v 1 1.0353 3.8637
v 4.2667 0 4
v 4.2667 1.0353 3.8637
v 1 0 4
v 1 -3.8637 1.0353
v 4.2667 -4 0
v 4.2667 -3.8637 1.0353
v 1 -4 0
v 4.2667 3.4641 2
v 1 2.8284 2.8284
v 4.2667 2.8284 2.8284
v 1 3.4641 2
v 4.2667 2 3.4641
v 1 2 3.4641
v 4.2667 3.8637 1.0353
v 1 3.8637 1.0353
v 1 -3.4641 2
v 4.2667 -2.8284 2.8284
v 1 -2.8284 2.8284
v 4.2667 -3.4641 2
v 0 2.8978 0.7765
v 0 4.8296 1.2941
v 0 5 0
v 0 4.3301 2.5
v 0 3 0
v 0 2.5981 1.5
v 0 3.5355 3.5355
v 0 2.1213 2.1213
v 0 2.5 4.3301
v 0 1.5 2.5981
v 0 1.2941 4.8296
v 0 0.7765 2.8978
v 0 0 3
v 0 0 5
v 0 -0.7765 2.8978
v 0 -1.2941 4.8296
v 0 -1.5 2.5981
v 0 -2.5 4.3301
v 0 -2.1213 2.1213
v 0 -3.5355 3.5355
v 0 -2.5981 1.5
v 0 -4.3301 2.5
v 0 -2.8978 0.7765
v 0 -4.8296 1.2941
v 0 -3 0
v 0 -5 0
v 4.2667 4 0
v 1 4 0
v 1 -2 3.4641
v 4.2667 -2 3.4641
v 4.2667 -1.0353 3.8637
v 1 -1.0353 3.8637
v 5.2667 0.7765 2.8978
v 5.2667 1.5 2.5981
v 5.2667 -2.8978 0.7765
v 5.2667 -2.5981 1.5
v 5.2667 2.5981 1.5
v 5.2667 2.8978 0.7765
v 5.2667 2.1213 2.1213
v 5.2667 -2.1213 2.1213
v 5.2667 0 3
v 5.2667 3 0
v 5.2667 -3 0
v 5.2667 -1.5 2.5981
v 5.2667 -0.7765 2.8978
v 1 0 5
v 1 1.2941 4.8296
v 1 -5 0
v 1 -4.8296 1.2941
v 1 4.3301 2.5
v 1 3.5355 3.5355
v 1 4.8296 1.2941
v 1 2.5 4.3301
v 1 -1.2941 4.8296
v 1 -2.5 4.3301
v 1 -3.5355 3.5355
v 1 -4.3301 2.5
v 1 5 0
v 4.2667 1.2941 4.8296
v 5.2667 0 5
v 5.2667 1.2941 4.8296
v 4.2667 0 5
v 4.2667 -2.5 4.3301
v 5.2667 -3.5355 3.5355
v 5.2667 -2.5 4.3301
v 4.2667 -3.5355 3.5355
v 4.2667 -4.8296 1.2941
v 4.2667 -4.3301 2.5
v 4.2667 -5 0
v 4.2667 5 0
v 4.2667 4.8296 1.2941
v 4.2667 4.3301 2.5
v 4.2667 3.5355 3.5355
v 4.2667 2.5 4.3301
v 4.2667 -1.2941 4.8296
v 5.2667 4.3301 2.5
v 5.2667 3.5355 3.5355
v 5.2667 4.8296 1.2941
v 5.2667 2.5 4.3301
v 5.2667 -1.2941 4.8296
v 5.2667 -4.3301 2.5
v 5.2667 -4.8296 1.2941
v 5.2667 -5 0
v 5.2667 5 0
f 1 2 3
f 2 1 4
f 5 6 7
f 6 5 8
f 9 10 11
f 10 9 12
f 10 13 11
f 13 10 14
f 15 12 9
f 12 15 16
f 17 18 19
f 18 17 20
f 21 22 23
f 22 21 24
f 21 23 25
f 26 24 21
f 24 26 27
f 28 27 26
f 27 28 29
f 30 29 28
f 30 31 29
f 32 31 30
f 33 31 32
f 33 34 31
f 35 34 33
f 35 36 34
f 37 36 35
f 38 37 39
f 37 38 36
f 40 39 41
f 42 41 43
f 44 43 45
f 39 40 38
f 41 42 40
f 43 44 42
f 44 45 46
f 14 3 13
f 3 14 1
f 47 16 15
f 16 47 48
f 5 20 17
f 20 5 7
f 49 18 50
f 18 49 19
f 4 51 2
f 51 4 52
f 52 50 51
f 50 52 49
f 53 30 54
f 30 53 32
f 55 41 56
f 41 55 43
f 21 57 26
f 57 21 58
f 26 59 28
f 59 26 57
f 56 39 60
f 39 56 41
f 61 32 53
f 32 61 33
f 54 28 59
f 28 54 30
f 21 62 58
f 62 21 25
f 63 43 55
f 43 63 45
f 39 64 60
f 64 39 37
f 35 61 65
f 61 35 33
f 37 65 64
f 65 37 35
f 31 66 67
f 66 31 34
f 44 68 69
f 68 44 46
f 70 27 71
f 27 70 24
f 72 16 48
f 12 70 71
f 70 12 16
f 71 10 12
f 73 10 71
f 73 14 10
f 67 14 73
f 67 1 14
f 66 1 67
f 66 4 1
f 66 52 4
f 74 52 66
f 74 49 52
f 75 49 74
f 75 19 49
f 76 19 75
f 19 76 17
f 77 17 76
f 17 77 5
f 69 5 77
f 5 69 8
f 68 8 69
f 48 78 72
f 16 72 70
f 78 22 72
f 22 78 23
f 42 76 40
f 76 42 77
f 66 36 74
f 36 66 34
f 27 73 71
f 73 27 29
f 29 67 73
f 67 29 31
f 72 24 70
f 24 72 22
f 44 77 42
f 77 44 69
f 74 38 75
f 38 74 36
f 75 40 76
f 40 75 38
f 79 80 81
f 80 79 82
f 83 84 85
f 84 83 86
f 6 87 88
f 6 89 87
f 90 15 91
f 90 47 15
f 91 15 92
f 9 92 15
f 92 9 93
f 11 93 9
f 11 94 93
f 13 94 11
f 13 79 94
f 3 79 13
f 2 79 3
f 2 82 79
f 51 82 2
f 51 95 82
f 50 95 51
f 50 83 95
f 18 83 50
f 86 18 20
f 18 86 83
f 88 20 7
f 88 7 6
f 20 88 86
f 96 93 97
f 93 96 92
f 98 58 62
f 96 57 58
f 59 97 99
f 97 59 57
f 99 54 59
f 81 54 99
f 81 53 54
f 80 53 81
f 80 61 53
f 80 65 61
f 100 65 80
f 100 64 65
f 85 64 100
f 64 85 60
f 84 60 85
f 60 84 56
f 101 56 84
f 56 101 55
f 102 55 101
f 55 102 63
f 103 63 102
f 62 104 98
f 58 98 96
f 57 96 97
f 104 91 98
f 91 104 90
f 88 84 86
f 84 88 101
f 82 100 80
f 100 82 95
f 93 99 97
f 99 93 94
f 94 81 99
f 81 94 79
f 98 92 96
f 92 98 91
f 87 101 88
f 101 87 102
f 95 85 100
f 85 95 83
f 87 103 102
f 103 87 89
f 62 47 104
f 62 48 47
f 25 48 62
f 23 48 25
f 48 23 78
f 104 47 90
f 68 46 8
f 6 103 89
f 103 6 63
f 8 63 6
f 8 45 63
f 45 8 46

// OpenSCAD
// file: ../build_environments.scad
// build_environments.scad: modules to build level sections
//

module pool(diameter=10.0, wall_height=2.0, step_width=3.0, connections=[])
{
    difference() {
        union() {
        difference() {
            cylinder(h=0.5,r1=diameter+step_width,r2=diameter+step_width,$fn=48);
            translate([0,0,-0.1])
                cylinder(h=0.7,r1=diameter,r2=diameter,$fn=48);
        }
        difference() {
            cylinder(h=wall_height,r1=diameter+step_width+1.0,r2=diameter+step_width+1.0,$fn=48);
            translate([0,0,-0.1])
                cylinder(h=wall_height+0.2,r1=diameter+step_width,r2=diameter+step_width,$fn=48);
        }
        }
    
        for (c = connections)
        {
            rotate([0,90,0]) {
                angle = atan2(c[1],c[0]);
                rotate([-angle,0,0]) {
                    cylinder(h=diameter+5.0,r1=c[2],r2=c[2],$fn=48);
                }
            }
        }
    }
}

module straight(length=10.0, width=2.0, dy1=0.0, dy2=0.0, dz=0.0)
{
    dims = [0, 0, 0, 0, 0, (dz/length)];
    matrix = [
        [ 1, dims[0], dims[1], 0 ],
        [ dims[2], 1, dims[4], 0 ],
        [ dims[5], dims[3], 1, 0 ],
        [ 0, 0, 0, 1 ]
    ];
    multmatrix(matrix)
    difference() {
        translate([dy1,0,0])
        union() {
            rotate([0,90,0]) {
                difference() {
                    cylinder(h=(length-dy1-dy2),r1=width+1.0,r2=width+1.0,$fn=24);
                    translate([0,0,-0.1])
                        cylinder(h=(length-dy1-dy2+0.2),r1=width,r2=width,$fn=24);
                }
                difference() {
                    cylinder(h=1.0,r1=width+2.0,r2=width+2.0,$fn=24);
                    translate([0,0,-0.1])
                        cylinder(h=1.2,r1=width,r2=width,$fn=24);
                }
                translate([0,0,(length-dy1-dy2)-1.0]) {
                    difference() {
                        cylinder(h=1.0,r1=width+2.0,r2=width+2.0,$fn=24);
                        translate([0,0,-0.1])
                            cylinder(h=1.2,r1=width,r2=width,$fn=24);
                    }
                }
            }
        }
        translate([0,0,-(2*width+4.0)/2])
            cube([3*length,3*length,2*width+4.0],center=true);
    }
}

module curve(p0=[0,0], center=[0,0], dir=1, angle=0.0, width=2.0)
{
    radius = sqrt((p0[0]-center[0])*(p0[0]-center[0]) + (p0[1]-center[1])*(p0[1]-center[1]));
    if (dir == 0) {
        difference() {
            rotate([0,0,-90])
            difference() {
                rotate_extrude(angle = angle, convexity = 10, $fn=32)
                    translate([radius, 0, 0])
                        circle(r = width+1.0,$fn=24);
                rotate([0,0,-1.0])
                    rotate_extrude(angle = angle+2.0, convexity = 10, $fn=32)
                        translate([radius, 0, 0])
                            circle(r = width,$fn=24);
            }
            translate([0,0,-(2*width+4.0)/2])
                cube([5*radius,5*radius,2*width+4.0],center=true);
        }
    }
    else {
        difference() {
            rotate([0,0,90])
            difference() {
                rotate_extrude(angle = -angle, convexity = 10, $fn=32)
                    translate([radius, 0, 0])
                        circle(r = width+1.0,$fn=24);
                rotate([0,0,1.0])
                    rotate_extrude(angle = -angle-2.0, convexity = 10, $fn=32)
                        translate([radius, 0, 0])
                            circle(r = width,$fn=24);
            }
            translate([0,0,-(2*width+4.0)/2])
                cube([5*radius,5*radius,2*width+4.0],center=true);
        }
    }

}

// test pool
//pool(diameter=12.0000, wall_height=3.0000, step_width=3.0000, connections=[[0.0000,-26.0000,2.0000], [23.6074,0.0000,2.0000]]);

// test straight, slope
//straight(length=26.0000, width=2.0000, dy1=11.8322, dy2=6.7082, dz=0.0000);
//straight(length=29.1549, width=12.0000, dy1=0.0000, dy2=0.0000, dz=-15.0000);

// test curve
//curve(p0=[23.6074, 0.0000], center=[23.6074, 5.0000], dir=0, angle=60.1011, width=2.0000);
//curve(p0=[33.6426, 12.4219], center=[37.9771, 9.9295], dir=1, angle=120.4627, width=2.0000);
// main file
use <../build_environments.scad>;
straight(length=14.8061, width=3.0000, dy1=0.0000, dy2=9.5394, dz=0.0000);
